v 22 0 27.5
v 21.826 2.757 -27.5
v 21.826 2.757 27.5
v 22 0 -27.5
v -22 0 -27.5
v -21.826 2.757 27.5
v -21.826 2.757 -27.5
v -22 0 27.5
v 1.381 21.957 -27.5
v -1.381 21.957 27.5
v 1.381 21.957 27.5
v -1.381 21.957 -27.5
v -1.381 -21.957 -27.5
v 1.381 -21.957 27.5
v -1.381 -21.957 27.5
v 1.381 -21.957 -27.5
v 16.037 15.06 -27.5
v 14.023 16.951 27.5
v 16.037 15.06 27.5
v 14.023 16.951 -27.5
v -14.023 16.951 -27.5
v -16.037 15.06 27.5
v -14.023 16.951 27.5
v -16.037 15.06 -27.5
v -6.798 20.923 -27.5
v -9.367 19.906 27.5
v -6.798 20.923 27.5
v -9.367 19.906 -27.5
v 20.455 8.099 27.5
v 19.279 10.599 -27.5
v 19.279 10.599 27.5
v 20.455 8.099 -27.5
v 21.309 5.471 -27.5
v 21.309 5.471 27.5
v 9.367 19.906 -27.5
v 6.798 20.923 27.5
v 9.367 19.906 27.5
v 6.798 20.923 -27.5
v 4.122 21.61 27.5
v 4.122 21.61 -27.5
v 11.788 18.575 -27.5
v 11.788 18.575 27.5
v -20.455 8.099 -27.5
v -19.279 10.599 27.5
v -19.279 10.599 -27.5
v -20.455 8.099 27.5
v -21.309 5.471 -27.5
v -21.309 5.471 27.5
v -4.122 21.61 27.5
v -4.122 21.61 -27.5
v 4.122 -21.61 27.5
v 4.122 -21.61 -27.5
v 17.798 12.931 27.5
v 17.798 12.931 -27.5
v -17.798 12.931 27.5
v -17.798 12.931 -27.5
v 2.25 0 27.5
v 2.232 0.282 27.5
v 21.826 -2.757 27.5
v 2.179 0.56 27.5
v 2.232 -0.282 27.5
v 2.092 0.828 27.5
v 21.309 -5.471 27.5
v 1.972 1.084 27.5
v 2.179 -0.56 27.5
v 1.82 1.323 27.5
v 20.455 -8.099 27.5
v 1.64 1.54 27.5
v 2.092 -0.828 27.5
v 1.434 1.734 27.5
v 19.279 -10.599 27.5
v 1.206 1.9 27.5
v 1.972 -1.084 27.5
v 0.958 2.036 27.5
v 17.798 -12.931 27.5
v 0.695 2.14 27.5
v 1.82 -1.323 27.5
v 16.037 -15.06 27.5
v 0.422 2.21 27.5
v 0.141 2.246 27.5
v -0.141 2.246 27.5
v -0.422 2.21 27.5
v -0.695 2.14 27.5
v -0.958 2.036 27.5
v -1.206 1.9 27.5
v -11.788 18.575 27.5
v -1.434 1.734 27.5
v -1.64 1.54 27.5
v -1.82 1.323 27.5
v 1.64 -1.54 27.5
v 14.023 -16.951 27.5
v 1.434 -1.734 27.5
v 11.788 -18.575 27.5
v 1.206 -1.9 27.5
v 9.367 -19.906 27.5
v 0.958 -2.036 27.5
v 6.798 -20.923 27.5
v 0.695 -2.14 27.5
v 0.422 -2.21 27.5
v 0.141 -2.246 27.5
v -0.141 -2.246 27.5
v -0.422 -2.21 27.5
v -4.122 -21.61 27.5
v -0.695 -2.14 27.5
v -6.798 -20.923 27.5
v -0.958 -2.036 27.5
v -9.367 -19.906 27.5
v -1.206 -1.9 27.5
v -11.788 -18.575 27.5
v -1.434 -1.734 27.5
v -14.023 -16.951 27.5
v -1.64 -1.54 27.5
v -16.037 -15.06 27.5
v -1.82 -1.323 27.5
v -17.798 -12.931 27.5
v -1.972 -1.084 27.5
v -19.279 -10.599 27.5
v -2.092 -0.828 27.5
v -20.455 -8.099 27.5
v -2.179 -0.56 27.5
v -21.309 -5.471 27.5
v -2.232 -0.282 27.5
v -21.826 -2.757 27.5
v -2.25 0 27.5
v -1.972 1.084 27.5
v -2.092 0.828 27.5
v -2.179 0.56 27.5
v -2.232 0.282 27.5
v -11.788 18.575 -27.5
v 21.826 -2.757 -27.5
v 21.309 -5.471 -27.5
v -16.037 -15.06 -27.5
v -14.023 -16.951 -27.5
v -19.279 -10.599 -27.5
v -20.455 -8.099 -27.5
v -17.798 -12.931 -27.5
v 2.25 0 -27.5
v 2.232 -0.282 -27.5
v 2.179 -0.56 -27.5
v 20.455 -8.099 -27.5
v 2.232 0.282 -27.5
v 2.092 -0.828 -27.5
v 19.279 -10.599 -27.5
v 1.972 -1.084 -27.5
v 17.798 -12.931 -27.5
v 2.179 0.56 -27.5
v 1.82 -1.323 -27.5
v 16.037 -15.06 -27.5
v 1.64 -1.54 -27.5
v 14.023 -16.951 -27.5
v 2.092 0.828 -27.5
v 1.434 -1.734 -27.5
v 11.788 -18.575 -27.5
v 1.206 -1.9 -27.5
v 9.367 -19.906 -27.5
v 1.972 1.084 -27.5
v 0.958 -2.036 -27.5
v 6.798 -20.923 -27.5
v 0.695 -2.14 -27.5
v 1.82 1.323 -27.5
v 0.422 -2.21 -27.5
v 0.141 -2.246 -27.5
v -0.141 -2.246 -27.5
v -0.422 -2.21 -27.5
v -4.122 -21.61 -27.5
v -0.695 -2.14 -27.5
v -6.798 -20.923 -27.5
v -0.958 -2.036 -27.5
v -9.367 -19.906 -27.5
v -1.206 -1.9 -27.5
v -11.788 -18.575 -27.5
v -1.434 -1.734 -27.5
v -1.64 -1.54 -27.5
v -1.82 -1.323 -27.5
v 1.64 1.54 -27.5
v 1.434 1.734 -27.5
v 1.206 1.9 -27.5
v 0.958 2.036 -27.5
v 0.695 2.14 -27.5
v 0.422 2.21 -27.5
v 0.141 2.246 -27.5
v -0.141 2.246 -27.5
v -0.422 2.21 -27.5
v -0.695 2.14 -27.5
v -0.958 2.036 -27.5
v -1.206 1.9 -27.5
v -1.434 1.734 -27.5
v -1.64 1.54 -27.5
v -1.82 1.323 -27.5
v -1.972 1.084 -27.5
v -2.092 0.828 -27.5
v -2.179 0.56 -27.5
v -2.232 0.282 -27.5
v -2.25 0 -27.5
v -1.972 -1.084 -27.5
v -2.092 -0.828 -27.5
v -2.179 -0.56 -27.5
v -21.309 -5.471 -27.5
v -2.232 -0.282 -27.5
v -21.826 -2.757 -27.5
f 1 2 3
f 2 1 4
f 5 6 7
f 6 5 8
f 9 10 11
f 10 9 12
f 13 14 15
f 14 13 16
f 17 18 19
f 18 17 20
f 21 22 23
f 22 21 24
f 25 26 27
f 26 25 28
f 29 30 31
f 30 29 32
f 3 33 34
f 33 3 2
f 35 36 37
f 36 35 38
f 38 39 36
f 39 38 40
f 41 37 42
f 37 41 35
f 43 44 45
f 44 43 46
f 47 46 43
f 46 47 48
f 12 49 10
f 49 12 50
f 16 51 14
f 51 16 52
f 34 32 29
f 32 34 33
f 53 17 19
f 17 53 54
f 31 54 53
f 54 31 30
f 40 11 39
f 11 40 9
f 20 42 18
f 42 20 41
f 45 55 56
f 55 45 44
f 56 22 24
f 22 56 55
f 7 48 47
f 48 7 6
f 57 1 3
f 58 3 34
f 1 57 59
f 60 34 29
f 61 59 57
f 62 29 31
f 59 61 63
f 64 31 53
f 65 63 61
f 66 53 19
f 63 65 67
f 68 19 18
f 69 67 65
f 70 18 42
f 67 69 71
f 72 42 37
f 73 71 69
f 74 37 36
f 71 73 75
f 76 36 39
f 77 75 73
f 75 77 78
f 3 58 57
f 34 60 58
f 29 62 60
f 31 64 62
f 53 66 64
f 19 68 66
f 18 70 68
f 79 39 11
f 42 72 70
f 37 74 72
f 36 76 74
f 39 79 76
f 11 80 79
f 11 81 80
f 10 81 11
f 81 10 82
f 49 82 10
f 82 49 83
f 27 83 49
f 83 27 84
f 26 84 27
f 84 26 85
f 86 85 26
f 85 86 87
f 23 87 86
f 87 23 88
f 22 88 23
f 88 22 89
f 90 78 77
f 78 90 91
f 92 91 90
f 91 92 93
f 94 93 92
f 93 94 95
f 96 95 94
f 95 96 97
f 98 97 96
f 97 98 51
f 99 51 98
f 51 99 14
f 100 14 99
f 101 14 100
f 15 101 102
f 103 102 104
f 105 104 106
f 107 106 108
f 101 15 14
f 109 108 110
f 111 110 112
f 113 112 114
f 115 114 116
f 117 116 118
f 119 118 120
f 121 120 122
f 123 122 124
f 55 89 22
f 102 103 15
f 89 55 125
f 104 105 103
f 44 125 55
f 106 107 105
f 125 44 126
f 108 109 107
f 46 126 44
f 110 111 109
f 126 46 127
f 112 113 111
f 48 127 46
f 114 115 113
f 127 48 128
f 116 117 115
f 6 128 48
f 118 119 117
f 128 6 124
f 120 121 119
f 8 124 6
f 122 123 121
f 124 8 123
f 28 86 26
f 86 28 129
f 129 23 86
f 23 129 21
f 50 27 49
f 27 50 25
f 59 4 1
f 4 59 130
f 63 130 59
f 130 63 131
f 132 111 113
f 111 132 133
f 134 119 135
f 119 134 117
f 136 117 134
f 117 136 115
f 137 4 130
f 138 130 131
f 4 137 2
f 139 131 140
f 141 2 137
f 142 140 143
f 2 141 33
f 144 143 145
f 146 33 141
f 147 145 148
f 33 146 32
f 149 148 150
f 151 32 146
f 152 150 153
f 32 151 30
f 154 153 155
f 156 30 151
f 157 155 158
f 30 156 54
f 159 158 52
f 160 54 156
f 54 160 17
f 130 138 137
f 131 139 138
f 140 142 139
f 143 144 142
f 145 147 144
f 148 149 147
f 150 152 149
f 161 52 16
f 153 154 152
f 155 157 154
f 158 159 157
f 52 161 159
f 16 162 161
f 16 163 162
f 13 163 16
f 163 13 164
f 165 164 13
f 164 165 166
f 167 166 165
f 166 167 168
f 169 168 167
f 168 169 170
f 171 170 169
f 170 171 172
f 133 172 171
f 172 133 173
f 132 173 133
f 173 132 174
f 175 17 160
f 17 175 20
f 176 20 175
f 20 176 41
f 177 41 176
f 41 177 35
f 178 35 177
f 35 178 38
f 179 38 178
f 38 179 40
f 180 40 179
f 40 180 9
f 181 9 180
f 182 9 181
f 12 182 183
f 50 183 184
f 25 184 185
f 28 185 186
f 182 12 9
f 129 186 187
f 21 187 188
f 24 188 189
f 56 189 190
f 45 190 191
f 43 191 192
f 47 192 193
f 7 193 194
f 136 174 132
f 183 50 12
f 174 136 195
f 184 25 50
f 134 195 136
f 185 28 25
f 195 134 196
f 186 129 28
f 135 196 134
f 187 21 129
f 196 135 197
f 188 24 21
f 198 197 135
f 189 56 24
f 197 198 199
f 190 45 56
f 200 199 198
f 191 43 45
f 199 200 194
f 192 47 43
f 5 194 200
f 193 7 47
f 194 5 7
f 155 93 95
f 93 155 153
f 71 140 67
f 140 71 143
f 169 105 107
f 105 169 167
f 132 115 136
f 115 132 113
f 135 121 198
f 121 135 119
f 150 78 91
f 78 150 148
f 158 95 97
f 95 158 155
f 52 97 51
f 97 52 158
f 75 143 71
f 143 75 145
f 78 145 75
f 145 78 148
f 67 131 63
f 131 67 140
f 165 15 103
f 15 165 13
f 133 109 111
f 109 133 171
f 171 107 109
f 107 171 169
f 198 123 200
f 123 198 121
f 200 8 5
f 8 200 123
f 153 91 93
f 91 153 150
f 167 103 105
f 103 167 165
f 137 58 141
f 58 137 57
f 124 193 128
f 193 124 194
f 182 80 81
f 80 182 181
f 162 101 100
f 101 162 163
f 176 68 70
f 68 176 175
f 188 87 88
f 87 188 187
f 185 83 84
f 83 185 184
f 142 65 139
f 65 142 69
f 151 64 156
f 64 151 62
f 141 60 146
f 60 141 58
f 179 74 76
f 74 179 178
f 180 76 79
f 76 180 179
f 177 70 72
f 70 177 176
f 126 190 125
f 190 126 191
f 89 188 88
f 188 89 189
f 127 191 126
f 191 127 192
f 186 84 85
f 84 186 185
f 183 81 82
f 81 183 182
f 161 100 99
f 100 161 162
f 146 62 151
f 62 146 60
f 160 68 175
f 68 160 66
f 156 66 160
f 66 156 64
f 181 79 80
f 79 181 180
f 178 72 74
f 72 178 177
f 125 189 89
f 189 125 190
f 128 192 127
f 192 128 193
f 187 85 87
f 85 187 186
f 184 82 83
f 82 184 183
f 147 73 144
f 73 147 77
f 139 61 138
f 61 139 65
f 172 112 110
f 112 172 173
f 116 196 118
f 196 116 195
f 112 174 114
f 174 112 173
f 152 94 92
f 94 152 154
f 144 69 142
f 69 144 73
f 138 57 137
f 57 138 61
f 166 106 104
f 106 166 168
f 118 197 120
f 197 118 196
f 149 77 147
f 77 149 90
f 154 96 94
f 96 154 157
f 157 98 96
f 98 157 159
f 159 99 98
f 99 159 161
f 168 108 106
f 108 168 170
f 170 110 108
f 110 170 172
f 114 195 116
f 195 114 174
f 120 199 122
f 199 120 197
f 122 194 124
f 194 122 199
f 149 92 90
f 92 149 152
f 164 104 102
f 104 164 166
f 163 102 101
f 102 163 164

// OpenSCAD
$fn = 50;


difference() {
	union() {
		translate(v = [0, 0, -27.5000000000]) {
			cylinder(h = 55, r = 22.0000000000);
		}
	}
	union() {
		translate(v = [0, 0, -100.0000000000]) {
			cylinder(h = 200, r = 2.2500000000);
		}
	}
}
